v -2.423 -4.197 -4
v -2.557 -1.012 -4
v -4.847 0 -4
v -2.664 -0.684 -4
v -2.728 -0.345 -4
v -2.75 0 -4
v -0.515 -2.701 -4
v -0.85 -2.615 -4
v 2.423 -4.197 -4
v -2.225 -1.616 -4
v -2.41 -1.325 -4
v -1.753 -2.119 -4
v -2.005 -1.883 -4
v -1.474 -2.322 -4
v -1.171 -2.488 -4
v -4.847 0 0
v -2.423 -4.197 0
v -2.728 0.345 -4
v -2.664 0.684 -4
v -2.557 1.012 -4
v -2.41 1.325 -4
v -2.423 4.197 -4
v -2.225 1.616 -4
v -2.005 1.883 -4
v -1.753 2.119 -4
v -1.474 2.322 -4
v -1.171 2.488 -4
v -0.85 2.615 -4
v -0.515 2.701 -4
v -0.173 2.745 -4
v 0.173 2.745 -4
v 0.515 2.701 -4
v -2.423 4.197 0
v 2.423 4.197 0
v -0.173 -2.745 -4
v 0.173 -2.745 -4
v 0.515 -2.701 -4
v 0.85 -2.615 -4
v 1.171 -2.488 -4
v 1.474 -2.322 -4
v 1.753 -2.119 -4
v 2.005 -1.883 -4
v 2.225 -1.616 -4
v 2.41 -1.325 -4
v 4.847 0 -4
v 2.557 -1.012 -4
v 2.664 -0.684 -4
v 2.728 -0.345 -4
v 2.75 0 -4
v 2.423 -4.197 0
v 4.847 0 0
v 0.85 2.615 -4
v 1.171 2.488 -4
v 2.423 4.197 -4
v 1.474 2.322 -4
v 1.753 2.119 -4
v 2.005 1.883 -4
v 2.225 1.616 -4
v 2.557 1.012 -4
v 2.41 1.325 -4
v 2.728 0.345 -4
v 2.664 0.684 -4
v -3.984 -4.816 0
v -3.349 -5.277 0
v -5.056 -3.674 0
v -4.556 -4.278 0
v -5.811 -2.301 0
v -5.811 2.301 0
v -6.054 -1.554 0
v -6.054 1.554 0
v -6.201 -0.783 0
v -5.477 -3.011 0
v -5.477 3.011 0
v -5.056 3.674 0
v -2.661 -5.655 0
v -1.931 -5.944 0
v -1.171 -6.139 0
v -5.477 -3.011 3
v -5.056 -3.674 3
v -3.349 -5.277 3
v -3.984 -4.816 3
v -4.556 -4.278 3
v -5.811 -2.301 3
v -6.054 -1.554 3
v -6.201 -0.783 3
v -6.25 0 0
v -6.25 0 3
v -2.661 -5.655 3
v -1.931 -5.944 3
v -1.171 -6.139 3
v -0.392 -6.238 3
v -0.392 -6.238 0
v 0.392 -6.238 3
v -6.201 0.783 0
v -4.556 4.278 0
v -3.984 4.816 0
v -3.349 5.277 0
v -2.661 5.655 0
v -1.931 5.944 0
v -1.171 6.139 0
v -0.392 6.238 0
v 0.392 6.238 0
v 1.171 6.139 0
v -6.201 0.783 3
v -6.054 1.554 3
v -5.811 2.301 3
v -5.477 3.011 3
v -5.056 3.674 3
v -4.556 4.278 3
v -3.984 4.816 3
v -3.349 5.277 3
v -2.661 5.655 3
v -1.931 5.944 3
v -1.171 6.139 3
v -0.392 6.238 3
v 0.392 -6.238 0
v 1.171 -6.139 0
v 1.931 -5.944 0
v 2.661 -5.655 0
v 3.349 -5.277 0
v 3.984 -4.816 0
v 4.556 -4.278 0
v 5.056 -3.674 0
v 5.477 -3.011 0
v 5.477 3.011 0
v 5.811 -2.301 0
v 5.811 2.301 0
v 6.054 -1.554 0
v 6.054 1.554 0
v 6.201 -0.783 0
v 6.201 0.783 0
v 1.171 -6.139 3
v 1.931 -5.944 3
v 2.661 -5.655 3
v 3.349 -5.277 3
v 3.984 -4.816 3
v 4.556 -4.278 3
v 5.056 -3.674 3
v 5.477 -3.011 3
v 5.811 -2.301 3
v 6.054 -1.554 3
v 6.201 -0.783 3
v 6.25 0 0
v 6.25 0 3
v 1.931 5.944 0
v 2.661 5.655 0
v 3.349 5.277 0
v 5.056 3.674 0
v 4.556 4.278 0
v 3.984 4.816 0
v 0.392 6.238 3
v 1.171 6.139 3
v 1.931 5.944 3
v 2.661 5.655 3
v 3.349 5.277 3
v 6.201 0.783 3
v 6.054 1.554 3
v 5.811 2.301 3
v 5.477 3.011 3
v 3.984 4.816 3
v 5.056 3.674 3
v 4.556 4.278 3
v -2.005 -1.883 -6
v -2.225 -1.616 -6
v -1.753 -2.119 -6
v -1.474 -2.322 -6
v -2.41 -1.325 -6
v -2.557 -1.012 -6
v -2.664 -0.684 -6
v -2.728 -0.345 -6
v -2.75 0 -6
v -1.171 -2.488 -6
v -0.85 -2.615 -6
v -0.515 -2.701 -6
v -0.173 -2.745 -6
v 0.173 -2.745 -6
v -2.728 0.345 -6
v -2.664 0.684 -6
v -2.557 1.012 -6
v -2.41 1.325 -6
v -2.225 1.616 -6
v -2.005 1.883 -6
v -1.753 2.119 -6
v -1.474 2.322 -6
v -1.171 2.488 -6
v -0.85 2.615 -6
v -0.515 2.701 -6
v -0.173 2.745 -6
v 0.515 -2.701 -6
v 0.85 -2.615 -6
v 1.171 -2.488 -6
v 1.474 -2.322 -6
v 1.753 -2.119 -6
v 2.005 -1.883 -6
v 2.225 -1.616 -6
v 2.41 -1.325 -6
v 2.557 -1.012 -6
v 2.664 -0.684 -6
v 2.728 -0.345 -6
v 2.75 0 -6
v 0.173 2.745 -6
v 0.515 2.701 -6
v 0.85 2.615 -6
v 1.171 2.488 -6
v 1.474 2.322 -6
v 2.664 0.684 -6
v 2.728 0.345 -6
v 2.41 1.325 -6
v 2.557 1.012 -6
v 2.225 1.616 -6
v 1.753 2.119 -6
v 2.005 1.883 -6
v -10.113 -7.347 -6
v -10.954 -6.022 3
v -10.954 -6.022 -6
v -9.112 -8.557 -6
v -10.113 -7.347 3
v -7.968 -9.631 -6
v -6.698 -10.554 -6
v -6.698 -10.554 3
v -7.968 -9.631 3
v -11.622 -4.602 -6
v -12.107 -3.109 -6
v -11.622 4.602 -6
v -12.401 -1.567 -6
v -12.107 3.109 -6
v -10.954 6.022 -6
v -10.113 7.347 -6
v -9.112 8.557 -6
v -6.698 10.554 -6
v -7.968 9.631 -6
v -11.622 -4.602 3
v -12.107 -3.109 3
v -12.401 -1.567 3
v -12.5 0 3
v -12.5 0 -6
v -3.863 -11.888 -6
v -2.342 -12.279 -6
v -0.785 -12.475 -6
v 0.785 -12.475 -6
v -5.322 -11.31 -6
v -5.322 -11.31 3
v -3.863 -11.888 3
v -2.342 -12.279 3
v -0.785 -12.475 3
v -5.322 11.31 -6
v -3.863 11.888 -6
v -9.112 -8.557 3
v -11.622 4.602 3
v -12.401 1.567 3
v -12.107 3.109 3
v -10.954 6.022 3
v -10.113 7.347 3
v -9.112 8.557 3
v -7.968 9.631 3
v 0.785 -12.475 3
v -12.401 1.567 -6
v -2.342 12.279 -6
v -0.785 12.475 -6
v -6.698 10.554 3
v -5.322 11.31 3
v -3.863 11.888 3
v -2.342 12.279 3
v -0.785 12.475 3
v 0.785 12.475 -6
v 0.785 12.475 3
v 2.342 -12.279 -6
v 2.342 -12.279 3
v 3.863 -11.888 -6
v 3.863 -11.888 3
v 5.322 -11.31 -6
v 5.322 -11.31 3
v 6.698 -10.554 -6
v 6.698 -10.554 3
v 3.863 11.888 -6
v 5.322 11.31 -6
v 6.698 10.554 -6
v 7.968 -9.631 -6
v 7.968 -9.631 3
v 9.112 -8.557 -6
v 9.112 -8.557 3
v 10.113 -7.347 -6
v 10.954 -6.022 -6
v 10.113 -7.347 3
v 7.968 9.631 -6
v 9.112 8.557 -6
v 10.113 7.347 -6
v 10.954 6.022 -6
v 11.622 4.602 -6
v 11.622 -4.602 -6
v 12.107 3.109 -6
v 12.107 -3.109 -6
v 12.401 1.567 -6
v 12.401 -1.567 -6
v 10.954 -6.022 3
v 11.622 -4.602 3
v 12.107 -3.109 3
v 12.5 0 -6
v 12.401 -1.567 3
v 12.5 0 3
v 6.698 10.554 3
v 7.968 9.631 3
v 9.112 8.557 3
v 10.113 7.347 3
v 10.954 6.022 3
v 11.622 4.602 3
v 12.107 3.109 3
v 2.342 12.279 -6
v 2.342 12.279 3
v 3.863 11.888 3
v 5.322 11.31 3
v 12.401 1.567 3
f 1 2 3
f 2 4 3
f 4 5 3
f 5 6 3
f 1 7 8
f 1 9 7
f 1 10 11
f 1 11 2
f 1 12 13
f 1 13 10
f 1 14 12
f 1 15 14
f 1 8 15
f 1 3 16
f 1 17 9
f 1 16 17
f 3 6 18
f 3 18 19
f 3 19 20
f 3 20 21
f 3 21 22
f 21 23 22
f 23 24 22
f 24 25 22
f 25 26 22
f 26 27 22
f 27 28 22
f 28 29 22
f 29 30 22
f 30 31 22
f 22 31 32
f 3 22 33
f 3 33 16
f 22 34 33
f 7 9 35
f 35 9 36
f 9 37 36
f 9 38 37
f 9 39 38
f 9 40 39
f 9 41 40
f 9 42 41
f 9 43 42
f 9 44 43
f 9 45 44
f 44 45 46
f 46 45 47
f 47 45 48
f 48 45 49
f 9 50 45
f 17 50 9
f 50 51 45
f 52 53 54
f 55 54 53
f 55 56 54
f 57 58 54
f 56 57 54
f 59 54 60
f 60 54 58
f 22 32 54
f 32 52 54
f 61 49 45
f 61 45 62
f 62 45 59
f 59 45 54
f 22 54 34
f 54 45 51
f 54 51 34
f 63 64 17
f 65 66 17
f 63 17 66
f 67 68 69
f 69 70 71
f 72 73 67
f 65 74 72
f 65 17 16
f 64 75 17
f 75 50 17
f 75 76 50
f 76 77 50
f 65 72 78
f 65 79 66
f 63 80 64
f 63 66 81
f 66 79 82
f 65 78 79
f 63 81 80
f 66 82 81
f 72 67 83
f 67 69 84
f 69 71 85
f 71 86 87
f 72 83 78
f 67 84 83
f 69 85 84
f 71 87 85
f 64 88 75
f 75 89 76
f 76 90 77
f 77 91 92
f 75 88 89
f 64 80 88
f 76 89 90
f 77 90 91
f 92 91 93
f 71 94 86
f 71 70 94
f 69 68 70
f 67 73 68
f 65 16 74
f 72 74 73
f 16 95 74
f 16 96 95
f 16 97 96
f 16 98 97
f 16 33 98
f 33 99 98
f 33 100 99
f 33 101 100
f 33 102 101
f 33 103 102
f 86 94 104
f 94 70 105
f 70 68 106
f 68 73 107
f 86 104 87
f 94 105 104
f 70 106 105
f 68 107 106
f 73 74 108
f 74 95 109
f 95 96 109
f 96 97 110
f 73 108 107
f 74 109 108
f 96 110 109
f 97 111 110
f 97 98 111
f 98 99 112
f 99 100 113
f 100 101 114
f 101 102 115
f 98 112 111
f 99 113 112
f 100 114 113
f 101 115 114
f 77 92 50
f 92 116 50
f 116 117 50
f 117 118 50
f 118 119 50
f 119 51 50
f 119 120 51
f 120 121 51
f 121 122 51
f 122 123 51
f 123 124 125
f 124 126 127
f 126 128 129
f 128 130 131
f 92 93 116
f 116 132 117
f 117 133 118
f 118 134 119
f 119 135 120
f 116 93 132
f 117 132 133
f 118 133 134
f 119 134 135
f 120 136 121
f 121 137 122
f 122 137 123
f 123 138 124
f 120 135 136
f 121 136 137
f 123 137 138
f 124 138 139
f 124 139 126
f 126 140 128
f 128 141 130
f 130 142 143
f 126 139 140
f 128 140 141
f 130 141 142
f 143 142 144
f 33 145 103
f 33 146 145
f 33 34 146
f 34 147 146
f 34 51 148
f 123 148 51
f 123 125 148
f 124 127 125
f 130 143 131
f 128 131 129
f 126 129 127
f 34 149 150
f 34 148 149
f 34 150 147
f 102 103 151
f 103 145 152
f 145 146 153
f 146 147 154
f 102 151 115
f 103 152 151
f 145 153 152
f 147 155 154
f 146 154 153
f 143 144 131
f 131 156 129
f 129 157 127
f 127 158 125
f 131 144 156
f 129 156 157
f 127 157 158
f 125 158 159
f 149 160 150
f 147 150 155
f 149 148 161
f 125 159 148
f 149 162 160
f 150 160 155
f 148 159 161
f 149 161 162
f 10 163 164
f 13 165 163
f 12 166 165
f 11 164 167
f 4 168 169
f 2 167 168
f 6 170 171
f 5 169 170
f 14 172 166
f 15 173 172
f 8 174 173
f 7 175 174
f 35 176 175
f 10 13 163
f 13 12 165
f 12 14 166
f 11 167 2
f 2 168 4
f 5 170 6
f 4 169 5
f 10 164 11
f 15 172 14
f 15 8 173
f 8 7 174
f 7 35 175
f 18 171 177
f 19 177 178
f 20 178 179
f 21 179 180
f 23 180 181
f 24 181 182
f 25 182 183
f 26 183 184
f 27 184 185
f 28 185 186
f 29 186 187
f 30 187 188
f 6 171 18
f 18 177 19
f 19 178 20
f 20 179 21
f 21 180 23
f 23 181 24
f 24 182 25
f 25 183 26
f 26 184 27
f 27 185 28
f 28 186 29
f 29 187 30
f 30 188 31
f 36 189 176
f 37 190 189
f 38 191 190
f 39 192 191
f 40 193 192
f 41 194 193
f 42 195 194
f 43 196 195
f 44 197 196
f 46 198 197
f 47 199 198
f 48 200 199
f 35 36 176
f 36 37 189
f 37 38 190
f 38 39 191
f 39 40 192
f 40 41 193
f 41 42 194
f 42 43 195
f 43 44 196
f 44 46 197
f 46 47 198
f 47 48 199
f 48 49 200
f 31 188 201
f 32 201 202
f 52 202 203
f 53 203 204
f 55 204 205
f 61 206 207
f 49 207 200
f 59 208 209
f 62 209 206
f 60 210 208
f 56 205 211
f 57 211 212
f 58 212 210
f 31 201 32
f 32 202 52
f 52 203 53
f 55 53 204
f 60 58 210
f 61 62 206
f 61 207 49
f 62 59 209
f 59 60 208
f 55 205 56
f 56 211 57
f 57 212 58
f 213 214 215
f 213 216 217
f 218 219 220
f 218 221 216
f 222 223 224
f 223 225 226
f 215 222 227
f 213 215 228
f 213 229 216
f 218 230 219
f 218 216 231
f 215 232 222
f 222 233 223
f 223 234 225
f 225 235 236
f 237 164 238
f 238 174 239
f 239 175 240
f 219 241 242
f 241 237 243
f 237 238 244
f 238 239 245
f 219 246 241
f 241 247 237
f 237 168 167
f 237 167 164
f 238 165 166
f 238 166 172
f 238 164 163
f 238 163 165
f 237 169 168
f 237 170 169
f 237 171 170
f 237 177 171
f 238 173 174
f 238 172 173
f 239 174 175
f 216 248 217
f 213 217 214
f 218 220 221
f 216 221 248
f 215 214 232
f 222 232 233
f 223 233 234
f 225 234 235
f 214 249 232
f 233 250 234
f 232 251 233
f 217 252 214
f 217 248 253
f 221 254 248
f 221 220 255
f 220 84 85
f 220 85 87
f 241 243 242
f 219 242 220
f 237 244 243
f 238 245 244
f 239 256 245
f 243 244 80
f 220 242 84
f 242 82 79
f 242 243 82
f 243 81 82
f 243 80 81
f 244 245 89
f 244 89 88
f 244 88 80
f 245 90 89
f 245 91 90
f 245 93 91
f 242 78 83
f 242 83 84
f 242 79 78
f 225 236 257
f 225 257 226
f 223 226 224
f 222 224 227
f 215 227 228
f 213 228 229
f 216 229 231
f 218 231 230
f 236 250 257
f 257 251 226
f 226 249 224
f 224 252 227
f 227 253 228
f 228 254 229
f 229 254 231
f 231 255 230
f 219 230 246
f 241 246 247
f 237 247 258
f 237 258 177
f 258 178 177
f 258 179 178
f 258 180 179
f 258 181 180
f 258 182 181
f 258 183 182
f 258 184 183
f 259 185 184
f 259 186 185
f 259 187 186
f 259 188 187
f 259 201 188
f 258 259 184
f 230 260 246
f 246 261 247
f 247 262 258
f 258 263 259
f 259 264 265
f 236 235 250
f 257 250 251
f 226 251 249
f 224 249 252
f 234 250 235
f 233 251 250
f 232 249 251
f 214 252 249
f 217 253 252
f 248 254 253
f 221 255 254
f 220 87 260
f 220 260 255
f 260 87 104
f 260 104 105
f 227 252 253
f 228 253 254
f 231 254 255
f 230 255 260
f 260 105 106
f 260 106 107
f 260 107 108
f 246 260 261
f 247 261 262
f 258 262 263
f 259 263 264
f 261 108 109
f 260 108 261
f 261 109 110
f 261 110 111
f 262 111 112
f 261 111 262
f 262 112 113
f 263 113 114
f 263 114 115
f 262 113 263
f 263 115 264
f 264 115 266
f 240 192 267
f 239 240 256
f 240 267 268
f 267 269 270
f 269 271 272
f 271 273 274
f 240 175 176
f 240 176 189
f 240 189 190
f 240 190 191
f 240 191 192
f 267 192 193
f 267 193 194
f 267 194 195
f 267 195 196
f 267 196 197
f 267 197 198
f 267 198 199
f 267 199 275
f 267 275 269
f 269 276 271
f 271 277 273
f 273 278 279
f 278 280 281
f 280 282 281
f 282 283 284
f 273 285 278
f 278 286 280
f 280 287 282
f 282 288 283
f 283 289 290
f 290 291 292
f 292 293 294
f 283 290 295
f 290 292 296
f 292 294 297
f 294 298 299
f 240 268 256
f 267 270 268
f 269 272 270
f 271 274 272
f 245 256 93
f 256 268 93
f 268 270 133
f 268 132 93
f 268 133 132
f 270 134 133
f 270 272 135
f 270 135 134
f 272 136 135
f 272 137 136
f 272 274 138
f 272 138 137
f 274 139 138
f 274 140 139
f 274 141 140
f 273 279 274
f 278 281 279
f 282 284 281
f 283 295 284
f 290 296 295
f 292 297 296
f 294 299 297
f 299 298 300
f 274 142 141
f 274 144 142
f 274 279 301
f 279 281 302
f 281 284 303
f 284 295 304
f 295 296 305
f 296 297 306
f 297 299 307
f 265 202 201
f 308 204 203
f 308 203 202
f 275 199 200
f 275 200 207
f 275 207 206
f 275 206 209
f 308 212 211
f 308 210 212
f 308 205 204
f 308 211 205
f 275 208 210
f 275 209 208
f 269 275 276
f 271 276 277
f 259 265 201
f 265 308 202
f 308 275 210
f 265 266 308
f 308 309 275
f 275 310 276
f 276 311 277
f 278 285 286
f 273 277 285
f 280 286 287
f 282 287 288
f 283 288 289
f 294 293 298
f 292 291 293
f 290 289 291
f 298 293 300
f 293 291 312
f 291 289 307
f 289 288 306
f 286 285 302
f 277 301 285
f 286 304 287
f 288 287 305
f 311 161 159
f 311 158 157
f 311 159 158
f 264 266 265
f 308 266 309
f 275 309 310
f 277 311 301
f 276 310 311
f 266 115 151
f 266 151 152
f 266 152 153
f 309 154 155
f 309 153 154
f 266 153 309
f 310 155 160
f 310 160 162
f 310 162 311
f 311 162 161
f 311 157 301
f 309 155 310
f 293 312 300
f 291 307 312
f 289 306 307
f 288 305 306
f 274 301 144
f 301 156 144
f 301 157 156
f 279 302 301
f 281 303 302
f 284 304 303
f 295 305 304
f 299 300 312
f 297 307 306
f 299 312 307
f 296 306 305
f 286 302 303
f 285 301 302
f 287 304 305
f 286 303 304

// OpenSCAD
$fn = 50;

difference() {
	union() {
		translate(v = [0, 0, -6.0]) {
			cylinder(h = 9.0, r = 12.5);
		}
	}
	union() {
		translate(v = [0, 0, 0]) {
			rotate(a = [0, 0, 0]) {
				difference() {
					union() {
						translate(v = [0, 0, -4]) {
							linear_extrude(height = 4) {
								polygon(points = [[4.8468, 0.0], [2.4234000000000004, 4.197451927062417], [-2.423399999999999, 4.197451927062417], [-4.8468, 5.935618106107392e-16], [-2.423400000000002, -4.197451927062416], [2.423399999999997, -4.197451927062419]]);
							}
						}
					}
					union();
				}
			}
		}
		#cylinder(h = 3, r = 6.25);
		#translate(v = [0, 0, -100.0]) {
			cylinder(h = 200, r = 2.75);
		}
	}
}
